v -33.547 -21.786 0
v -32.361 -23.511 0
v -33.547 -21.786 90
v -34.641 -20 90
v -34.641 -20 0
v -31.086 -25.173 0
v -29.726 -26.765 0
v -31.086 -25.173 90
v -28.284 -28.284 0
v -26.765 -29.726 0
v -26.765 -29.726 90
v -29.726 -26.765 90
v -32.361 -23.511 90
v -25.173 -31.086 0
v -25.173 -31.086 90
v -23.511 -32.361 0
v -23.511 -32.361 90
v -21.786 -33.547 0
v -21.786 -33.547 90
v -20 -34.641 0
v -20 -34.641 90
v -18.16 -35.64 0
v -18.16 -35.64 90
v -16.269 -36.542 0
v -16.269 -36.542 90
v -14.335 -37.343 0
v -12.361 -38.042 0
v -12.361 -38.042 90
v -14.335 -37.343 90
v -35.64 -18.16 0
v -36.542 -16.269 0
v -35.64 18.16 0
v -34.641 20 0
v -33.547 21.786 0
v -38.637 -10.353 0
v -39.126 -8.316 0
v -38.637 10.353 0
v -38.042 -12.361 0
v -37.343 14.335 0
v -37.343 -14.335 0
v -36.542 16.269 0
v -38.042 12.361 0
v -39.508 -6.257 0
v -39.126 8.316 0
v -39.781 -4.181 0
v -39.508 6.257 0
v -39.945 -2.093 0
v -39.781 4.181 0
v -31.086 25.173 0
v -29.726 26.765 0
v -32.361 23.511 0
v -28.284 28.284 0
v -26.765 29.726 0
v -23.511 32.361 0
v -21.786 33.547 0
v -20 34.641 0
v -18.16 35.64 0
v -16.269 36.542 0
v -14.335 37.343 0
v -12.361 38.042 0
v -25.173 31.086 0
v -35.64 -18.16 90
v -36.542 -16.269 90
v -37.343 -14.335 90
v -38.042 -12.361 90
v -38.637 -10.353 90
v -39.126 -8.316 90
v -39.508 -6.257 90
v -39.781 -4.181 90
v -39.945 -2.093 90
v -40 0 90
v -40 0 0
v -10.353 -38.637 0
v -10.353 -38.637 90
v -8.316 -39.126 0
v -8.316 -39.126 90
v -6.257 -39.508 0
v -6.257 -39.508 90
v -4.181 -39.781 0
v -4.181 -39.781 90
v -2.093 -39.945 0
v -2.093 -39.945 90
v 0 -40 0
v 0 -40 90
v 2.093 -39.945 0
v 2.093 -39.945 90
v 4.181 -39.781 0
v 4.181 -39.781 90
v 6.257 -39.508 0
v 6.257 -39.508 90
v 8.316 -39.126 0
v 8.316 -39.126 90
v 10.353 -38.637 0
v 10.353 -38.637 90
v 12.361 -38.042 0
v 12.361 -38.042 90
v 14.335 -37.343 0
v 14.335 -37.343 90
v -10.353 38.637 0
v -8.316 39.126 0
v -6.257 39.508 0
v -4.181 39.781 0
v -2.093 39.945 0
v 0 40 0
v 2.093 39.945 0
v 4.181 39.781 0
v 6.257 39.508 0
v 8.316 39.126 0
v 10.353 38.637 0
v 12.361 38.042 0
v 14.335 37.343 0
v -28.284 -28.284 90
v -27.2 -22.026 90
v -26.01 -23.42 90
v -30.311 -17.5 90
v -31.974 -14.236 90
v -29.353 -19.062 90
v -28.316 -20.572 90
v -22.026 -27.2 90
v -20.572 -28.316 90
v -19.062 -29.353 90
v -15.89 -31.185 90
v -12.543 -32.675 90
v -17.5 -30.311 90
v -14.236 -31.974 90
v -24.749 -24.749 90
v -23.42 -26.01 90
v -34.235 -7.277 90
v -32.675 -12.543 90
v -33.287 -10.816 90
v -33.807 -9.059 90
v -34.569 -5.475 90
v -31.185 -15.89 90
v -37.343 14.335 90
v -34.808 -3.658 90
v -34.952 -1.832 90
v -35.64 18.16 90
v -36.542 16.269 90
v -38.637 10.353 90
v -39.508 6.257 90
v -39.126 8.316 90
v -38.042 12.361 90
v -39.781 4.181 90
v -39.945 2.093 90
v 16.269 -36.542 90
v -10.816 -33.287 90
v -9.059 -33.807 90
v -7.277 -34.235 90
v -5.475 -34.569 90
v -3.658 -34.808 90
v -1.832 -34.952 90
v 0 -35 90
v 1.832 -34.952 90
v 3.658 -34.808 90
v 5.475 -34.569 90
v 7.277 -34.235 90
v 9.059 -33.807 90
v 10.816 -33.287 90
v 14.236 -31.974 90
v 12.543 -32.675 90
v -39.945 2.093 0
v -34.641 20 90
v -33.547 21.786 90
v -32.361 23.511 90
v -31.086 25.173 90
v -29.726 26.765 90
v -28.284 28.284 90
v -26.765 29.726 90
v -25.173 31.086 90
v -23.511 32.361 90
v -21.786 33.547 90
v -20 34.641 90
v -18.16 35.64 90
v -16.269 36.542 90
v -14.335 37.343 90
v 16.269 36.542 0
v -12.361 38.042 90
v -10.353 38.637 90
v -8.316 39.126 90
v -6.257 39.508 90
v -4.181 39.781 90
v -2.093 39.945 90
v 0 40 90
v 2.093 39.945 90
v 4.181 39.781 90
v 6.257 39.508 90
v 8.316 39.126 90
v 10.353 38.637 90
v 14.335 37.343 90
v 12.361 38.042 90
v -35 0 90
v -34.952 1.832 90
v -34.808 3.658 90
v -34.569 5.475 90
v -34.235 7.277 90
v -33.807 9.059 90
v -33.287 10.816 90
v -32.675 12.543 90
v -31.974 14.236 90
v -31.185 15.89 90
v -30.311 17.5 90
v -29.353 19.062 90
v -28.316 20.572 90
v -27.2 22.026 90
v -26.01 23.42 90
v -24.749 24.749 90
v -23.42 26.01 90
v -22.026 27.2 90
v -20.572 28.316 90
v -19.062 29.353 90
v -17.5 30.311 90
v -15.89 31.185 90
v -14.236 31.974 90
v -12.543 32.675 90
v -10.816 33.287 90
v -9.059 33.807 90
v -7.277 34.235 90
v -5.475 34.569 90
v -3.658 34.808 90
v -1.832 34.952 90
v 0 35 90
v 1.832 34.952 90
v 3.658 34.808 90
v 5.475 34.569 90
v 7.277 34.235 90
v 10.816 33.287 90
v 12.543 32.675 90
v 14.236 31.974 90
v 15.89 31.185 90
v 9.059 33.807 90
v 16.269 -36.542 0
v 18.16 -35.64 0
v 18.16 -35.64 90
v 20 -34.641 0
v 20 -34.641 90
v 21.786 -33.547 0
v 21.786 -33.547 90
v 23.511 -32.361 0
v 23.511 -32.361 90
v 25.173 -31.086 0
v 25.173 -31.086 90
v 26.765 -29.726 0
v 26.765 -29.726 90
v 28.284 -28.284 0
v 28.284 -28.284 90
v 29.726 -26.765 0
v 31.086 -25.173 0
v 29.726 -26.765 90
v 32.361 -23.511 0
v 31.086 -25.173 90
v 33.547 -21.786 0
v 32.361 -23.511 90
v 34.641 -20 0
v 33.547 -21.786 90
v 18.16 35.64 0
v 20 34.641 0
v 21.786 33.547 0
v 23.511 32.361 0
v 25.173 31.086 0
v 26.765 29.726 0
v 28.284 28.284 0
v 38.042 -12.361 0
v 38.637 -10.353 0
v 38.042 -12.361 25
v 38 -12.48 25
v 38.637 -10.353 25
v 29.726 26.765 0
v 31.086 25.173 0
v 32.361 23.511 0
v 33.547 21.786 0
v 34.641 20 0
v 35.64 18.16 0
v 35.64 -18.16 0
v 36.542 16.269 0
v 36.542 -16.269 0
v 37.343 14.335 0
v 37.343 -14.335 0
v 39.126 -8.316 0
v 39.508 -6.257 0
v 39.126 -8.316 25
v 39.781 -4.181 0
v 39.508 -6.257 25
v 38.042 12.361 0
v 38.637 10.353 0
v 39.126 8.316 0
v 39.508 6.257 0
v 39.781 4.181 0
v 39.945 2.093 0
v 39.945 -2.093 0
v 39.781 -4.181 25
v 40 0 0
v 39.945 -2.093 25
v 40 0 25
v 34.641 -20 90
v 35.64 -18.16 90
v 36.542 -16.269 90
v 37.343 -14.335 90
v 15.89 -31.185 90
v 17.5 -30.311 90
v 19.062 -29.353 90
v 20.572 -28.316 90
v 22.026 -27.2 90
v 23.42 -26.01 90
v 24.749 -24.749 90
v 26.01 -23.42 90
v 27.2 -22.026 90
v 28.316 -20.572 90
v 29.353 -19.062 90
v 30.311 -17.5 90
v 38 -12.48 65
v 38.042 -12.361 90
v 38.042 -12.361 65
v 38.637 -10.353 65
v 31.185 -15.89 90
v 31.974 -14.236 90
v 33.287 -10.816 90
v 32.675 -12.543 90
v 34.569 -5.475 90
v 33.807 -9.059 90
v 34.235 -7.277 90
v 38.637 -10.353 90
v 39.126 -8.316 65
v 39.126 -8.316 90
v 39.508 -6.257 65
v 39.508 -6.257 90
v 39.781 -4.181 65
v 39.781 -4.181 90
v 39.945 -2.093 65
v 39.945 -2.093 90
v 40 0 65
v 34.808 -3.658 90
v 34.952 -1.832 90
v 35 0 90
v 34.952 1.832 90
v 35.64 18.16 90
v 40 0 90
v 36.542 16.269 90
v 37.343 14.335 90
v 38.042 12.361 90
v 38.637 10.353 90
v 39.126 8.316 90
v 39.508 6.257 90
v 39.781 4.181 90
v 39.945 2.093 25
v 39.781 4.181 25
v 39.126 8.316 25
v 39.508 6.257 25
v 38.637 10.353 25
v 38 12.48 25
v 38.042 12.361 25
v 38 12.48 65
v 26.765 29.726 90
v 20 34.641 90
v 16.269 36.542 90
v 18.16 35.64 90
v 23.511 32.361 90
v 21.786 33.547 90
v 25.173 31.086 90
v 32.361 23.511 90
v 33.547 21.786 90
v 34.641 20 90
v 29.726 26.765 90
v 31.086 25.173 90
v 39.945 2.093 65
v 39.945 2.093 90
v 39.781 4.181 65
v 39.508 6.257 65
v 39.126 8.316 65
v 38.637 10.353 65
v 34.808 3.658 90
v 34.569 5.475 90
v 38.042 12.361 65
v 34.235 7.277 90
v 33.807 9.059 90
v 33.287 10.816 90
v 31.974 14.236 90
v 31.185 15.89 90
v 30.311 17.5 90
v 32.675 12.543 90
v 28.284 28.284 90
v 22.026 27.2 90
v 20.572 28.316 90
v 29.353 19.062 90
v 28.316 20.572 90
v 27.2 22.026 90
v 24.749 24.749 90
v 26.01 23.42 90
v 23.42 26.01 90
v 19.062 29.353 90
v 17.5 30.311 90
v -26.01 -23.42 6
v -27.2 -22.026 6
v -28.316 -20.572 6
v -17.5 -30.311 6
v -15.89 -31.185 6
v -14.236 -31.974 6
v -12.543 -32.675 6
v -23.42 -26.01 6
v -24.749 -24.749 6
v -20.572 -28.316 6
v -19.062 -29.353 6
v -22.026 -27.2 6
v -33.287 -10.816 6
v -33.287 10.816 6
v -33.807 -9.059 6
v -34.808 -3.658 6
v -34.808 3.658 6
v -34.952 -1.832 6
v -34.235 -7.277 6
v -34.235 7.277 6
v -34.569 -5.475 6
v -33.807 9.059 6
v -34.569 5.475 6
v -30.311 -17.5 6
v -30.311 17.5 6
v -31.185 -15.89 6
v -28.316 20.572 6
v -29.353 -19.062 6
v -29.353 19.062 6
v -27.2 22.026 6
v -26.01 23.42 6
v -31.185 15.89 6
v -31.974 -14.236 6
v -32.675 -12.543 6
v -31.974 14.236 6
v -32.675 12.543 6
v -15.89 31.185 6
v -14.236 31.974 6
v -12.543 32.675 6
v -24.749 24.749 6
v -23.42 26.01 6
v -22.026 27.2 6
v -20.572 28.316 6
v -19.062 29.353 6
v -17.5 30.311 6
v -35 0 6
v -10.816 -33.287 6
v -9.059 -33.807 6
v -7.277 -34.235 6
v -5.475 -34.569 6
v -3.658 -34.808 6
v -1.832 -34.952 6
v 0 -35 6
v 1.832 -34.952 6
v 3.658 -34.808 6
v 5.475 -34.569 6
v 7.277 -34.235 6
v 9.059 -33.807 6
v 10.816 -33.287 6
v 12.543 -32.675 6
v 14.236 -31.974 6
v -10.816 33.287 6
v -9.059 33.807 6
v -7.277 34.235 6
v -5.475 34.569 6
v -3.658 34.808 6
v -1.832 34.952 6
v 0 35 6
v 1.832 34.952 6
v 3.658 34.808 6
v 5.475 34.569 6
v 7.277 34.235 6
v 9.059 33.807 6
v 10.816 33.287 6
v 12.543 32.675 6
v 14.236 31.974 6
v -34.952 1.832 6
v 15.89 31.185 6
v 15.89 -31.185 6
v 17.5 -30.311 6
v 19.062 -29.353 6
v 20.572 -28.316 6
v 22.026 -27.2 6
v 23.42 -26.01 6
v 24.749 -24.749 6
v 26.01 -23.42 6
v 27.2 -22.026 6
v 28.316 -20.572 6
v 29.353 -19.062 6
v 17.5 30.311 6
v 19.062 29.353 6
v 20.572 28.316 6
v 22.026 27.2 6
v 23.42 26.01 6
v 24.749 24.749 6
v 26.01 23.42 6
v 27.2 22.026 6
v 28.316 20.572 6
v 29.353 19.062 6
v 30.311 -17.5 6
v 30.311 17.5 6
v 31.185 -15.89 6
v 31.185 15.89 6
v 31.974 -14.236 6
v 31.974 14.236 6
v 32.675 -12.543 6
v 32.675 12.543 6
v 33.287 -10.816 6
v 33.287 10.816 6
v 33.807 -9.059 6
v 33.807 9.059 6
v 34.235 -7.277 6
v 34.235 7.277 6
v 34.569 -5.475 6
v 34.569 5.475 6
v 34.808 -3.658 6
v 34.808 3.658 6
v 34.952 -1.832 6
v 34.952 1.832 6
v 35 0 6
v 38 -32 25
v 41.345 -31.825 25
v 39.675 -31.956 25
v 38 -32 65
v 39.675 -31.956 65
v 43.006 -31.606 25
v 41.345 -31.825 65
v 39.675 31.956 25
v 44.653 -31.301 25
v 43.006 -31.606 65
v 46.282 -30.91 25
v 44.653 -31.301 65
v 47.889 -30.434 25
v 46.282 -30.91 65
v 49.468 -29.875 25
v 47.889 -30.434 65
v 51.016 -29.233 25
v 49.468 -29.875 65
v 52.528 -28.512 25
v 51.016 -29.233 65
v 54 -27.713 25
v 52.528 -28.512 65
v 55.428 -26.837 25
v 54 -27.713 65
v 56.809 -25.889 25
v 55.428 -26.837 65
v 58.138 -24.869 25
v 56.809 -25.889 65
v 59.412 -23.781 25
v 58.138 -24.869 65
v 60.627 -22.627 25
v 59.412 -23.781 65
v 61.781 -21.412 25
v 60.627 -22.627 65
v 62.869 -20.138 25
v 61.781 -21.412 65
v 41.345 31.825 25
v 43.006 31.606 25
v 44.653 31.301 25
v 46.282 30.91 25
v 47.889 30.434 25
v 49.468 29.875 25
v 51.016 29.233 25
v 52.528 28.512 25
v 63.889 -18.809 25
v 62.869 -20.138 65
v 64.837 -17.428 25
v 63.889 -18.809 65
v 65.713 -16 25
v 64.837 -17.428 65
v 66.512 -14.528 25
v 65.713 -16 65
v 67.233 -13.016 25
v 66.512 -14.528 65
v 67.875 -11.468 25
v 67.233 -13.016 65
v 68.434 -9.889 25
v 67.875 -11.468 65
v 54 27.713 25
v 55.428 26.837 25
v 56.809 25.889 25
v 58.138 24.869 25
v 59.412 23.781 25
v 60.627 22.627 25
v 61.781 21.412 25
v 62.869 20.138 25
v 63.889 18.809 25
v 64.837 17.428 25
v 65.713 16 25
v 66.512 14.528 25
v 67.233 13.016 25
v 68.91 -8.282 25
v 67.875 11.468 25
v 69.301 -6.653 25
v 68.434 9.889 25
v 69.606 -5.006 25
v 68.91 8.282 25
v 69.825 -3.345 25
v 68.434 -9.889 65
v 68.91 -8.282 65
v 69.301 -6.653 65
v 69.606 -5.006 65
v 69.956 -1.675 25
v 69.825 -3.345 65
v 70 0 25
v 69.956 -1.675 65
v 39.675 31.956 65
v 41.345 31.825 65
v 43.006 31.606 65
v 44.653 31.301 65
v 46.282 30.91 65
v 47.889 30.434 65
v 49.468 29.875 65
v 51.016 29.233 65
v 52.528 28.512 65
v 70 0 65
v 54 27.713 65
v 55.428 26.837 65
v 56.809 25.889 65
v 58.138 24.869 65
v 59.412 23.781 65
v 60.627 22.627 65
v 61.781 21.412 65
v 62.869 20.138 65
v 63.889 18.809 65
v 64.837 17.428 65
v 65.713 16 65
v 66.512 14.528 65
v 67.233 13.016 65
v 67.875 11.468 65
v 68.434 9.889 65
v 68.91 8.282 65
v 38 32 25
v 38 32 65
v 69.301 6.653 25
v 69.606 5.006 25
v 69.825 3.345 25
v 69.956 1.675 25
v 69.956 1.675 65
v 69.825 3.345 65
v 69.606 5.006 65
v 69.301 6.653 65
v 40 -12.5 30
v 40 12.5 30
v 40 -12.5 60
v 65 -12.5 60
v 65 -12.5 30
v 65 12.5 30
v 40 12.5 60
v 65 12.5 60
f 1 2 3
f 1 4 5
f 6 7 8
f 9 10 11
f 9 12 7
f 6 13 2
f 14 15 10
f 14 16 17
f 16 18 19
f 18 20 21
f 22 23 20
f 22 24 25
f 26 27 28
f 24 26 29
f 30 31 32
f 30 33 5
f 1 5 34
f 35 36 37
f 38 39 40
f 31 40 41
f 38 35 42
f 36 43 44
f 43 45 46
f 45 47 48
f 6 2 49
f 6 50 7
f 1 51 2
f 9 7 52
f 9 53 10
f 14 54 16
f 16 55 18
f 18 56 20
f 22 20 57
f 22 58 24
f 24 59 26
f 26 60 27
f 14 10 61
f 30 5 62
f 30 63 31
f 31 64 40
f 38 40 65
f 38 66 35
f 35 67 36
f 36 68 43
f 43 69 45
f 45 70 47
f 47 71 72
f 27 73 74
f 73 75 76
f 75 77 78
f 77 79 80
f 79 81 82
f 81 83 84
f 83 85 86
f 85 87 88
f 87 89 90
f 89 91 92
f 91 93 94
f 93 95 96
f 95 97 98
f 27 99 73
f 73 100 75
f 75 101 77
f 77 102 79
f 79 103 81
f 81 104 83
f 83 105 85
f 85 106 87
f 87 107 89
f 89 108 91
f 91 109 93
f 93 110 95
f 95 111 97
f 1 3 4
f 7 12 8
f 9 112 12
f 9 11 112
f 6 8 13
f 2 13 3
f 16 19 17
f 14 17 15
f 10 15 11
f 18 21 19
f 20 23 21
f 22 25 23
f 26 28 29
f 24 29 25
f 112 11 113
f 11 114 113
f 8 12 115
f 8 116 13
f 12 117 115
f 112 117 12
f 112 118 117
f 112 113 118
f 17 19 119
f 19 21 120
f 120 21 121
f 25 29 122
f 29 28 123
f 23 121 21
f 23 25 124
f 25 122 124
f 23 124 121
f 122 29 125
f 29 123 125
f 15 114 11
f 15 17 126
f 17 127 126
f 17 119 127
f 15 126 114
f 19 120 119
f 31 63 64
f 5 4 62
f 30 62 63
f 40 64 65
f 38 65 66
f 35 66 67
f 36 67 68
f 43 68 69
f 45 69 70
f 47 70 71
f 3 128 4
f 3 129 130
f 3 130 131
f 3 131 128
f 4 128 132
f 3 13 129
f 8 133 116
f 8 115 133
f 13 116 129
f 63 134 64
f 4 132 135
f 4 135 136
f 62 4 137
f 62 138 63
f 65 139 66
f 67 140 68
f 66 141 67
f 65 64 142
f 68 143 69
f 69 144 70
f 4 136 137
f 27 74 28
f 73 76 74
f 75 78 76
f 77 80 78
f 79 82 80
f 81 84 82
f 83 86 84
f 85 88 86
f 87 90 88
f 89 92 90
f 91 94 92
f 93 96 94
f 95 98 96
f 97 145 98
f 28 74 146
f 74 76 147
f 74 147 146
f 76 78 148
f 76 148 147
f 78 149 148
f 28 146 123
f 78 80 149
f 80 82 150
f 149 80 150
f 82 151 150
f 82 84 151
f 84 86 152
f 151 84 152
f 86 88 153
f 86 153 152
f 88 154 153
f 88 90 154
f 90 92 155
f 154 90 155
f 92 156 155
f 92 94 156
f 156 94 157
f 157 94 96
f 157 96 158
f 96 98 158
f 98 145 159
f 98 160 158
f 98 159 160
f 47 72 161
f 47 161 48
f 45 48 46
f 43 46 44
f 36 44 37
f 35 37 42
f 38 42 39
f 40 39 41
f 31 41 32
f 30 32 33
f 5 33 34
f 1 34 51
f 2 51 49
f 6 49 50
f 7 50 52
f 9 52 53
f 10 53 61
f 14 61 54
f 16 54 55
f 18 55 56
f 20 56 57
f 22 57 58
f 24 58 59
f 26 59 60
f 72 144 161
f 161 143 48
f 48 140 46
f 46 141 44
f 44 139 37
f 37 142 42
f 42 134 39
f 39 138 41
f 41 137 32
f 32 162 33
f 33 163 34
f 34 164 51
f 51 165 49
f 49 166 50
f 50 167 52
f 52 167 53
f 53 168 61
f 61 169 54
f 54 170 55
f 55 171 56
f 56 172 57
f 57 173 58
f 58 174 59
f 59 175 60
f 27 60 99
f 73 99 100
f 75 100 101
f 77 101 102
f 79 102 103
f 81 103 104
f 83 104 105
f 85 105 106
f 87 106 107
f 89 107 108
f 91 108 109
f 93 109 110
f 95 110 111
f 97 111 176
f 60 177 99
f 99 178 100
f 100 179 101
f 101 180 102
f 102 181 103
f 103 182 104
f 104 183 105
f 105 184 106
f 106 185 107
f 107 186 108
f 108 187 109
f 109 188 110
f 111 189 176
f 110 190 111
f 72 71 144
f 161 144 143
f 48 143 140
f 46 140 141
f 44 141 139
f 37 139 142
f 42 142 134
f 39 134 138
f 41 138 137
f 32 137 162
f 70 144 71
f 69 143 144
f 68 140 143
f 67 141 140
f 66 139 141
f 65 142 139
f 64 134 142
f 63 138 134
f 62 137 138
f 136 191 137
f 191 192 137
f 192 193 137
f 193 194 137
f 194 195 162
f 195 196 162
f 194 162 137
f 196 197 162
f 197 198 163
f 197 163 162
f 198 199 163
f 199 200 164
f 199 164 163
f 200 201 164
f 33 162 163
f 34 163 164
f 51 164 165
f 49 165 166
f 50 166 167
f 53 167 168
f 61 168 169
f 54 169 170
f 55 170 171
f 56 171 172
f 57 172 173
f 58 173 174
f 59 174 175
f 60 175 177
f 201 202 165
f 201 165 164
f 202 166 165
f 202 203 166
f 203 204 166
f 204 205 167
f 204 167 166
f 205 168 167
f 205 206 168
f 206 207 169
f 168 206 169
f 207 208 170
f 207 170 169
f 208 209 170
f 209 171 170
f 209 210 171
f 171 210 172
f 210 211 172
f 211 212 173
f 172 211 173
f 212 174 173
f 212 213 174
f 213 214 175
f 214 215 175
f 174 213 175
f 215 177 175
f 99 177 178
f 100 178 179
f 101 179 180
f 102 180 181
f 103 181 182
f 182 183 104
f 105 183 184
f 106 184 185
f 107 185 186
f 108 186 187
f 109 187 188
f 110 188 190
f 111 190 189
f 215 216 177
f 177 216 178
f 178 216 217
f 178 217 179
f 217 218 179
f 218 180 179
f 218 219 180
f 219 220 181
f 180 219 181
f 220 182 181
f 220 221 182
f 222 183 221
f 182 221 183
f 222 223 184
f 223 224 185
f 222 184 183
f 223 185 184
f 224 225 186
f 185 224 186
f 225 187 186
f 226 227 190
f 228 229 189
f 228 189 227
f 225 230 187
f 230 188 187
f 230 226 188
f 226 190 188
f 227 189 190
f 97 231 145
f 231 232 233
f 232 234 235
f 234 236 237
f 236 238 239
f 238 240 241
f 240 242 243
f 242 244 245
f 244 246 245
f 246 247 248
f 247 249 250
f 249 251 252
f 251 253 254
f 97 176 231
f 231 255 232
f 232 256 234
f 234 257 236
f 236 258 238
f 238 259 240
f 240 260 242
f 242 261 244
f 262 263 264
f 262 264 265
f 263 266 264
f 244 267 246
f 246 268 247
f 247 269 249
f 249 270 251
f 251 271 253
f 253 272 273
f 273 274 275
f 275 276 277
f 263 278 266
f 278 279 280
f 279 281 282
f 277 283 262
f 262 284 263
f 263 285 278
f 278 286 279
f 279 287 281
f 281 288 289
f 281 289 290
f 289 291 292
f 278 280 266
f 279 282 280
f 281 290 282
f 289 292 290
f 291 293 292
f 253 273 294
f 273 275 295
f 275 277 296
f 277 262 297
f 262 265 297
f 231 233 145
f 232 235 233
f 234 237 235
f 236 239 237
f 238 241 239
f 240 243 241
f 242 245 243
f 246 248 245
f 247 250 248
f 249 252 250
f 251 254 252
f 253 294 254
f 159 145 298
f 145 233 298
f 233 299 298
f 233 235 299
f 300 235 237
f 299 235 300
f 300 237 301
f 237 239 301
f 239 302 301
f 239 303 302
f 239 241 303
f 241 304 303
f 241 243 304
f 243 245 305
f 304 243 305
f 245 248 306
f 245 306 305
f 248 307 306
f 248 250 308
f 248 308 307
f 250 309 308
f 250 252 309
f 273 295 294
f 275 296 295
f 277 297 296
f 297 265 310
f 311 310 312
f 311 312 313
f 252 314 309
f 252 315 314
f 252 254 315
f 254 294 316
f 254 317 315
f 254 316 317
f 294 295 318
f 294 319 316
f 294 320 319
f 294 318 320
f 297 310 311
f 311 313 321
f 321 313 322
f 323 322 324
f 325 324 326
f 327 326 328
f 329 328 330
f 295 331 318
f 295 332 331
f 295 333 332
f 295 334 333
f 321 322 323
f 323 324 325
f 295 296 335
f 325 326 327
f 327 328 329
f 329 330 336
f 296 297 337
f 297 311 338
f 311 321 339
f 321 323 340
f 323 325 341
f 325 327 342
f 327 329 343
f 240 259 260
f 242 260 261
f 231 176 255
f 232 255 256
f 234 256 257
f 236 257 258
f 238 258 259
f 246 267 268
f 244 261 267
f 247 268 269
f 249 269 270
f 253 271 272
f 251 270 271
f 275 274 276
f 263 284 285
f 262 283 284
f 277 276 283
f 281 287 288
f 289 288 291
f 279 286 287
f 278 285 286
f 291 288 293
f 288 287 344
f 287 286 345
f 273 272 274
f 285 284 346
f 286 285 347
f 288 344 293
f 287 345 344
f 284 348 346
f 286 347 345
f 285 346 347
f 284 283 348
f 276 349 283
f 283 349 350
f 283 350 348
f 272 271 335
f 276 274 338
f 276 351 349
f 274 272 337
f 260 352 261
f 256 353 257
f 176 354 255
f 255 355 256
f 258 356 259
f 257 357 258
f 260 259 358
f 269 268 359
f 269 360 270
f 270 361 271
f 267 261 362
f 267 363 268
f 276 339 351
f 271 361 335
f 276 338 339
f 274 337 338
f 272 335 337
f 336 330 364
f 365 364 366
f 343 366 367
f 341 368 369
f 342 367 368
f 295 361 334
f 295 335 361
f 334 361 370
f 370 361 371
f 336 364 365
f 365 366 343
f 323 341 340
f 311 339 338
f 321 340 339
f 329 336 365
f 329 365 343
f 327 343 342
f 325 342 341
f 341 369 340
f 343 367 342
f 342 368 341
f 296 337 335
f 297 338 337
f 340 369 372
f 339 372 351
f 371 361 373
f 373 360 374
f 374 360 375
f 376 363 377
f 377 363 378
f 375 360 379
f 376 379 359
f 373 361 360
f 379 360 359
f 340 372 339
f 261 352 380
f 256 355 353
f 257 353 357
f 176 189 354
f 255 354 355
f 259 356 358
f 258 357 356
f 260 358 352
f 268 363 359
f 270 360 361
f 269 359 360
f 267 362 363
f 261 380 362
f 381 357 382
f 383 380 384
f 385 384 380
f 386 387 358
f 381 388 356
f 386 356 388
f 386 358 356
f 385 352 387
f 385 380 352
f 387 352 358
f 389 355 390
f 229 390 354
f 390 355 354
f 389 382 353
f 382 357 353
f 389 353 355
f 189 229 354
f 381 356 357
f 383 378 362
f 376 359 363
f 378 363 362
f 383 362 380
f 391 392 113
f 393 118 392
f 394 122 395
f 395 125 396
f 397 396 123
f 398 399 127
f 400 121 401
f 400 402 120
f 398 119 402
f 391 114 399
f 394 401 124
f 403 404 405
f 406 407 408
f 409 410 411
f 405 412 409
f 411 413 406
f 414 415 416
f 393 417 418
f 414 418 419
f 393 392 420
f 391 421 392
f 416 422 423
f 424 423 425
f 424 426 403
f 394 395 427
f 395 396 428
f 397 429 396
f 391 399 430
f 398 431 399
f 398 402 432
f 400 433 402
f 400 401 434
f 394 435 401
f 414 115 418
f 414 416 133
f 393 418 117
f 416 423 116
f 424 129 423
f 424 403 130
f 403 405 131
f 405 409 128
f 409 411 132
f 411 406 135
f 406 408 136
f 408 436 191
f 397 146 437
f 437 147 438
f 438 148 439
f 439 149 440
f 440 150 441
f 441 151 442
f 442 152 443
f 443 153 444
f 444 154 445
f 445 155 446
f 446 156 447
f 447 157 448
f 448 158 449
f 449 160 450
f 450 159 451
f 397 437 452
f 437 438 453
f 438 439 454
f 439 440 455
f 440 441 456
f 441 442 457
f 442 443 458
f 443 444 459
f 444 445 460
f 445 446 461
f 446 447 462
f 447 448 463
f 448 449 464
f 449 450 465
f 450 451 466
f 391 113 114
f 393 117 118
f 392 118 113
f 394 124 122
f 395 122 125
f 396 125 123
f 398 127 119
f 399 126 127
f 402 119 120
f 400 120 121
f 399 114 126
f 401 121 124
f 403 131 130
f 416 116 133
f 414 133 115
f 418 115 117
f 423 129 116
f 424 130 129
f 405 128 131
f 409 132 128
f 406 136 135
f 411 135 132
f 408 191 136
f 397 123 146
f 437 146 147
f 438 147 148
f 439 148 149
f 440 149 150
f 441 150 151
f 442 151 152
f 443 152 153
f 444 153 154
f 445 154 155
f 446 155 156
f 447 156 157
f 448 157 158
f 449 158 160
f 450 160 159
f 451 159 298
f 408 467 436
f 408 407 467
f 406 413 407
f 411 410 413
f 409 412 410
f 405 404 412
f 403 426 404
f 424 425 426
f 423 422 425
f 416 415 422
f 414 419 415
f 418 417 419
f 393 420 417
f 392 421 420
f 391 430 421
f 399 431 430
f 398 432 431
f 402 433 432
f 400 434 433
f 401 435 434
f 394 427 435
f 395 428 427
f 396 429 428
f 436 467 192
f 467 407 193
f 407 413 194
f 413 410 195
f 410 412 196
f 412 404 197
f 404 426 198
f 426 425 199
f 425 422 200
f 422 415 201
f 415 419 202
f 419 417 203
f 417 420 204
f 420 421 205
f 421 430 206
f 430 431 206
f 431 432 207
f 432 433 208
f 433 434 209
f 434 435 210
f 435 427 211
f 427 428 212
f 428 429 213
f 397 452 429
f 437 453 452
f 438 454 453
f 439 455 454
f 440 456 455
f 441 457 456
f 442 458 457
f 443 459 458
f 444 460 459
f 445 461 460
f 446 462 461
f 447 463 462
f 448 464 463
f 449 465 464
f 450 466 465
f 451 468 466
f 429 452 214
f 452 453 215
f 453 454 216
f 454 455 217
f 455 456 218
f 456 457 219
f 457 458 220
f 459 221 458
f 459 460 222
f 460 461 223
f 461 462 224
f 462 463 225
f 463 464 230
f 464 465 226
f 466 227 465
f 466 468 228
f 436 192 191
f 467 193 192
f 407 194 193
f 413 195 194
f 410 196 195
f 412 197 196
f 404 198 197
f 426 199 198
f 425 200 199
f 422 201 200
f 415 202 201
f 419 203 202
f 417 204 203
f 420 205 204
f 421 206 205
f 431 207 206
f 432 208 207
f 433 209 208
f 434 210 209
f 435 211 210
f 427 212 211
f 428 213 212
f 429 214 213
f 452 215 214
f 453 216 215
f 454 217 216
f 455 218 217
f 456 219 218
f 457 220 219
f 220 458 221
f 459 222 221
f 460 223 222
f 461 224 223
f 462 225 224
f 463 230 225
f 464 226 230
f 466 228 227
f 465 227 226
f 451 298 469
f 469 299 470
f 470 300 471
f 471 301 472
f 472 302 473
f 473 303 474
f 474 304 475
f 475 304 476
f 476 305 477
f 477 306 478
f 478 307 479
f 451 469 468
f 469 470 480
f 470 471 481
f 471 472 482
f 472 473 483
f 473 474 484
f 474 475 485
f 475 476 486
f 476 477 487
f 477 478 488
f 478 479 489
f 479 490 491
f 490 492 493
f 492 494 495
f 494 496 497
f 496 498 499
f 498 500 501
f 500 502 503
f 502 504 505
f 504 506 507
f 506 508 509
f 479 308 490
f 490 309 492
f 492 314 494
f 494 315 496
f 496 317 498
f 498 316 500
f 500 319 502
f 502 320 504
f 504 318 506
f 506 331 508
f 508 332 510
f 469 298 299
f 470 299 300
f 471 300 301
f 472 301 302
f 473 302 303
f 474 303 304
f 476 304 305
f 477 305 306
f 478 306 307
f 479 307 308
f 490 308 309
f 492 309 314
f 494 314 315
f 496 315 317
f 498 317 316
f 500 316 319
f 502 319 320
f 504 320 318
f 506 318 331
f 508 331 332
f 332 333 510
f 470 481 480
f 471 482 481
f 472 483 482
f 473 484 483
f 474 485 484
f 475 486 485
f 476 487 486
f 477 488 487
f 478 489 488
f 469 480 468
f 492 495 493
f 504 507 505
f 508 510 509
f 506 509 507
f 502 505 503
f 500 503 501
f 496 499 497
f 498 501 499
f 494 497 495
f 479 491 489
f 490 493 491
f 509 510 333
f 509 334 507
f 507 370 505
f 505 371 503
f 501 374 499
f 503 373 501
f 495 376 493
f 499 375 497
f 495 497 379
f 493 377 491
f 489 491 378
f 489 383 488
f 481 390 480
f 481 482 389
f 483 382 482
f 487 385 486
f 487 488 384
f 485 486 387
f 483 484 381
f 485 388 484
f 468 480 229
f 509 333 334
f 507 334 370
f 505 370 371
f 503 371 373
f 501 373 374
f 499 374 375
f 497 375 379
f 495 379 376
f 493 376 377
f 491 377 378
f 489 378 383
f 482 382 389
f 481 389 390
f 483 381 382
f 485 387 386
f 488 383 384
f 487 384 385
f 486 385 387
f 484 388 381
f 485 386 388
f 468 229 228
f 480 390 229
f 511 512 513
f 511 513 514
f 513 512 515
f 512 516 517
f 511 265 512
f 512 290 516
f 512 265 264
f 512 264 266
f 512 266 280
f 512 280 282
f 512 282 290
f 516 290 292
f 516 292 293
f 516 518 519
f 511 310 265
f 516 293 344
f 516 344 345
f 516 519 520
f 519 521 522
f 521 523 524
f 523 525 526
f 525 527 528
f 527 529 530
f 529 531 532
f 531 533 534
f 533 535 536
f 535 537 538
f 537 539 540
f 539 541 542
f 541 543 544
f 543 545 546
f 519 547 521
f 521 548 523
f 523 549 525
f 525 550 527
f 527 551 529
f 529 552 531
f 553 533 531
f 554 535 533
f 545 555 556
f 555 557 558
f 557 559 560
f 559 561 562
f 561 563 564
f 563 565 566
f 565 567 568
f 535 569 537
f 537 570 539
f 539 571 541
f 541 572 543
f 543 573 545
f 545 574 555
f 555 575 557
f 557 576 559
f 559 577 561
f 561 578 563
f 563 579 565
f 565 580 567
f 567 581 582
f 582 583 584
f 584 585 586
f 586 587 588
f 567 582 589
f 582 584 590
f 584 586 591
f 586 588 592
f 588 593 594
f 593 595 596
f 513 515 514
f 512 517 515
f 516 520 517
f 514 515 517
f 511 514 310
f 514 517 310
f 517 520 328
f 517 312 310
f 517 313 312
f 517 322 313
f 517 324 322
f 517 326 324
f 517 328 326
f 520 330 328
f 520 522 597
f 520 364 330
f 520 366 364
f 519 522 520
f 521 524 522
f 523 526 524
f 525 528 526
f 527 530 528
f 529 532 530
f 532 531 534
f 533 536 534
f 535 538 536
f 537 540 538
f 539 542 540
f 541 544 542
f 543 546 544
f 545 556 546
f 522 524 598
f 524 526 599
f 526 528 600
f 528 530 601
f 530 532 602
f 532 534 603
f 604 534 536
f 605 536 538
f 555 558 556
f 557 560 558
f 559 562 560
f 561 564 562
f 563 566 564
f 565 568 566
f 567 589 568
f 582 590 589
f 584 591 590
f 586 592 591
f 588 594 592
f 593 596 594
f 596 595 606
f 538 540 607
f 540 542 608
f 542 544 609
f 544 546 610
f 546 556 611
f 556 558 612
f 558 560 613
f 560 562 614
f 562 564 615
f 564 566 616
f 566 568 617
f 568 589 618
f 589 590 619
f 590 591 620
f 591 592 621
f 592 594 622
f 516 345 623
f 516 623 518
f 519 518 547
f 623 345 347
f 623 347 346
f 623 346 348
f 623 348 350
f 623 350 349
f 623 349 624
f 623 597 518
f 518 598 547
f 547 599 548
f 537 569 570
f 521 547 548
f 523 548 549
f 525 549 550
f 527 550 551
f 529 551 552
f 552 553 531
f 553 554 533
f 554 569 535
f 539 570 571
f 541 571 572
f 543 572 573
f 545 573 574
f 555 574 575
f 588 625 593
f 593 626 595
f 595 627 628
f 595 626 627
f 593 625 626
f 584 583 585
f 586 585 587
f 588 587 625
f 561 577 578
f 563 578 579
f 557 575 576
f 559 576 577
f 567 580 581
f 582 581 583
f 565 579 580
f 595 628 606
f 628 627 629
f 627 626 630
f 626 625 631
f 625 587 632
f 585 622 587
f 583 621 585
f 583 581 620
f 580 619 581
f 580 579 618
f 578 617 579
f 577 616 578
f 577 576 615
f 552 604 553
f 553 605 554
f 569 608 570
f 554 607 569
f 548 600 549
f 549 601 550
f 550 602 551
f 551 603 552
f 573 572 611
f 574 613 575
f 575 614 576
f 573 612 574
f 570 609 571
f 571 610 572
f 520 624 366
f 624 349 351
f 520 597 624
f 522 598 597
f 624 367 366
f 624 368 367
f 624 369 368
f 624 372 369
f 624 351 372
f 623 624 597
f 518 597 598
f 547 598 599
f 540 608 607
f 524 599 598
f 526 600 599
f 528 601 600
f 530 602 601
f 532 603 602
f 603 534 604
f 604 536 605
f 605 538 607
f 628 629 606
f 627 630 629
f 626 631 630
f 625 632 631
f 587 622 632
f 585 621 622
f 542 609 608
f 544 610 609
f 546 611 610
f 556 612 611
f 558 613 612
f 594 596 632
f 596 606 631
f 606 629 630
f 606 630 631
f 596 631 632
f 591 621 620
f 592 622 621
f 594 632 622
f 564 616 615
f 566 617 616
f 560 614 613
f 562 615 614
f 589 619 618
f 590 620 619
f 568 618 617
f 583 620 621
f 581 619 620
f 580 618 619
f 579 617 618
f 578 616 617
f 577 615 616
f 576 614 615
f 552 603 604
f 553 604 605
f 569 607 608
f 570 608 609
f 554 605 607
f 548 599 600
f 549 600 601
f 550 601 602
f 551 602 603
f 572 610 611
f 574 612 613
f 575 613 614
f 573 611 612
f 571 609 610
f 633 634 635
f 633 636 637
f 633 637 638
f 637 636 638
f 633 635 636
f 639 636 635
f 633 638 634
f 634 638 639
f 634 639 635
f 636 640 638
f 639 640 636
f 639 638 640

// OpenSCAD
// OpenSCAD: D-shaped mug with handle on +X side
$fn = 120;

// --- Parameters ---
outer_d = 80;            // 外径
inner_d = 70;            // 内径
r_out = outer_d/2;
r_in  = inner_d/2;
height = 90;             // 高さ
bottom_thickness = 6;    // 底面の厚み

// 取手パラメータ
handle_inner_height = 30;   // 取手内側の高さ (Z)
handle_vert_margin = 5;     // 上下の余裕（取手の上下の接続部）
handle_height = handle_inner_height + 2*handle_vert_margin;
z_center = height/2;
handle_z_bottom = z_center - handle_height/2;

handle_flat_x = r_out - 2;  // 直線側の平面 X (マグに重なるように2mmオーバーラップ)
handle_cx = handle_flat_x;  // 半円の中心 X
R_handle_outer = 32;        // 半円の半径（外側）

// 取手内側の空間（指定どおり 高さ 30mm × 幅 25mm）
cavity_height = handle_inner_height;   // Z: 30
cavity_width_y = 25;                   // Y: 25
cavity_depth_x = 25;                   // X方向の深さ（マグ外周からの距離）←幅の解釈に合わせて設定
cavity_x_left = r_out;                 // 左端をマグ外周に合わせる（x = 40）
cavity_y_len = cavity_width_y;
cavity_z_bottom = z_center - cavity_height/2;

// --- 出力 ---
union() {
  // 本体（外筒 - 内筒）
  difference() {
    // 外筒
    cylinder(h = height, r = r_out, center = false);
    // 内筒（底厚を残すために z = bottom_thickness から高さを短くする）
    translate([0,0,bottom_thickness])
      cylinder(h = height - bottom_thickness, r = r_in, center = false);
  }

  // 取手（外形は半円（D字外側）、本体と確実に重なるように平面側を内側に少しオーバーラップ）
  difference() {
    // 半円を2Dで作って押し出す（右向きの半円：平面は x = handle_cx）
    translate([0,0,handle_z_bottom])
      linear_extrude(height = handle_height, center = false, convexity = 10)
        intersection() {
          translate([handle_cx, 0]) circle(R_handle_outer);
          // 半平面 (x >= handle_cx) を作るための大きな四角形
          translate([handle_cx, -1000]) square([10000, 2000]);
        }

    // 取手内側の空間（矩形スロット）を差し引く（高さは正確に 30mm、幅 25mm）
    translate([cavity_x_left, -cavity_y_len/2, cavity_z_bottom])
      cube([cavity_depth_x, cavity_y_len, cavity_height], center = false);
  }
}
